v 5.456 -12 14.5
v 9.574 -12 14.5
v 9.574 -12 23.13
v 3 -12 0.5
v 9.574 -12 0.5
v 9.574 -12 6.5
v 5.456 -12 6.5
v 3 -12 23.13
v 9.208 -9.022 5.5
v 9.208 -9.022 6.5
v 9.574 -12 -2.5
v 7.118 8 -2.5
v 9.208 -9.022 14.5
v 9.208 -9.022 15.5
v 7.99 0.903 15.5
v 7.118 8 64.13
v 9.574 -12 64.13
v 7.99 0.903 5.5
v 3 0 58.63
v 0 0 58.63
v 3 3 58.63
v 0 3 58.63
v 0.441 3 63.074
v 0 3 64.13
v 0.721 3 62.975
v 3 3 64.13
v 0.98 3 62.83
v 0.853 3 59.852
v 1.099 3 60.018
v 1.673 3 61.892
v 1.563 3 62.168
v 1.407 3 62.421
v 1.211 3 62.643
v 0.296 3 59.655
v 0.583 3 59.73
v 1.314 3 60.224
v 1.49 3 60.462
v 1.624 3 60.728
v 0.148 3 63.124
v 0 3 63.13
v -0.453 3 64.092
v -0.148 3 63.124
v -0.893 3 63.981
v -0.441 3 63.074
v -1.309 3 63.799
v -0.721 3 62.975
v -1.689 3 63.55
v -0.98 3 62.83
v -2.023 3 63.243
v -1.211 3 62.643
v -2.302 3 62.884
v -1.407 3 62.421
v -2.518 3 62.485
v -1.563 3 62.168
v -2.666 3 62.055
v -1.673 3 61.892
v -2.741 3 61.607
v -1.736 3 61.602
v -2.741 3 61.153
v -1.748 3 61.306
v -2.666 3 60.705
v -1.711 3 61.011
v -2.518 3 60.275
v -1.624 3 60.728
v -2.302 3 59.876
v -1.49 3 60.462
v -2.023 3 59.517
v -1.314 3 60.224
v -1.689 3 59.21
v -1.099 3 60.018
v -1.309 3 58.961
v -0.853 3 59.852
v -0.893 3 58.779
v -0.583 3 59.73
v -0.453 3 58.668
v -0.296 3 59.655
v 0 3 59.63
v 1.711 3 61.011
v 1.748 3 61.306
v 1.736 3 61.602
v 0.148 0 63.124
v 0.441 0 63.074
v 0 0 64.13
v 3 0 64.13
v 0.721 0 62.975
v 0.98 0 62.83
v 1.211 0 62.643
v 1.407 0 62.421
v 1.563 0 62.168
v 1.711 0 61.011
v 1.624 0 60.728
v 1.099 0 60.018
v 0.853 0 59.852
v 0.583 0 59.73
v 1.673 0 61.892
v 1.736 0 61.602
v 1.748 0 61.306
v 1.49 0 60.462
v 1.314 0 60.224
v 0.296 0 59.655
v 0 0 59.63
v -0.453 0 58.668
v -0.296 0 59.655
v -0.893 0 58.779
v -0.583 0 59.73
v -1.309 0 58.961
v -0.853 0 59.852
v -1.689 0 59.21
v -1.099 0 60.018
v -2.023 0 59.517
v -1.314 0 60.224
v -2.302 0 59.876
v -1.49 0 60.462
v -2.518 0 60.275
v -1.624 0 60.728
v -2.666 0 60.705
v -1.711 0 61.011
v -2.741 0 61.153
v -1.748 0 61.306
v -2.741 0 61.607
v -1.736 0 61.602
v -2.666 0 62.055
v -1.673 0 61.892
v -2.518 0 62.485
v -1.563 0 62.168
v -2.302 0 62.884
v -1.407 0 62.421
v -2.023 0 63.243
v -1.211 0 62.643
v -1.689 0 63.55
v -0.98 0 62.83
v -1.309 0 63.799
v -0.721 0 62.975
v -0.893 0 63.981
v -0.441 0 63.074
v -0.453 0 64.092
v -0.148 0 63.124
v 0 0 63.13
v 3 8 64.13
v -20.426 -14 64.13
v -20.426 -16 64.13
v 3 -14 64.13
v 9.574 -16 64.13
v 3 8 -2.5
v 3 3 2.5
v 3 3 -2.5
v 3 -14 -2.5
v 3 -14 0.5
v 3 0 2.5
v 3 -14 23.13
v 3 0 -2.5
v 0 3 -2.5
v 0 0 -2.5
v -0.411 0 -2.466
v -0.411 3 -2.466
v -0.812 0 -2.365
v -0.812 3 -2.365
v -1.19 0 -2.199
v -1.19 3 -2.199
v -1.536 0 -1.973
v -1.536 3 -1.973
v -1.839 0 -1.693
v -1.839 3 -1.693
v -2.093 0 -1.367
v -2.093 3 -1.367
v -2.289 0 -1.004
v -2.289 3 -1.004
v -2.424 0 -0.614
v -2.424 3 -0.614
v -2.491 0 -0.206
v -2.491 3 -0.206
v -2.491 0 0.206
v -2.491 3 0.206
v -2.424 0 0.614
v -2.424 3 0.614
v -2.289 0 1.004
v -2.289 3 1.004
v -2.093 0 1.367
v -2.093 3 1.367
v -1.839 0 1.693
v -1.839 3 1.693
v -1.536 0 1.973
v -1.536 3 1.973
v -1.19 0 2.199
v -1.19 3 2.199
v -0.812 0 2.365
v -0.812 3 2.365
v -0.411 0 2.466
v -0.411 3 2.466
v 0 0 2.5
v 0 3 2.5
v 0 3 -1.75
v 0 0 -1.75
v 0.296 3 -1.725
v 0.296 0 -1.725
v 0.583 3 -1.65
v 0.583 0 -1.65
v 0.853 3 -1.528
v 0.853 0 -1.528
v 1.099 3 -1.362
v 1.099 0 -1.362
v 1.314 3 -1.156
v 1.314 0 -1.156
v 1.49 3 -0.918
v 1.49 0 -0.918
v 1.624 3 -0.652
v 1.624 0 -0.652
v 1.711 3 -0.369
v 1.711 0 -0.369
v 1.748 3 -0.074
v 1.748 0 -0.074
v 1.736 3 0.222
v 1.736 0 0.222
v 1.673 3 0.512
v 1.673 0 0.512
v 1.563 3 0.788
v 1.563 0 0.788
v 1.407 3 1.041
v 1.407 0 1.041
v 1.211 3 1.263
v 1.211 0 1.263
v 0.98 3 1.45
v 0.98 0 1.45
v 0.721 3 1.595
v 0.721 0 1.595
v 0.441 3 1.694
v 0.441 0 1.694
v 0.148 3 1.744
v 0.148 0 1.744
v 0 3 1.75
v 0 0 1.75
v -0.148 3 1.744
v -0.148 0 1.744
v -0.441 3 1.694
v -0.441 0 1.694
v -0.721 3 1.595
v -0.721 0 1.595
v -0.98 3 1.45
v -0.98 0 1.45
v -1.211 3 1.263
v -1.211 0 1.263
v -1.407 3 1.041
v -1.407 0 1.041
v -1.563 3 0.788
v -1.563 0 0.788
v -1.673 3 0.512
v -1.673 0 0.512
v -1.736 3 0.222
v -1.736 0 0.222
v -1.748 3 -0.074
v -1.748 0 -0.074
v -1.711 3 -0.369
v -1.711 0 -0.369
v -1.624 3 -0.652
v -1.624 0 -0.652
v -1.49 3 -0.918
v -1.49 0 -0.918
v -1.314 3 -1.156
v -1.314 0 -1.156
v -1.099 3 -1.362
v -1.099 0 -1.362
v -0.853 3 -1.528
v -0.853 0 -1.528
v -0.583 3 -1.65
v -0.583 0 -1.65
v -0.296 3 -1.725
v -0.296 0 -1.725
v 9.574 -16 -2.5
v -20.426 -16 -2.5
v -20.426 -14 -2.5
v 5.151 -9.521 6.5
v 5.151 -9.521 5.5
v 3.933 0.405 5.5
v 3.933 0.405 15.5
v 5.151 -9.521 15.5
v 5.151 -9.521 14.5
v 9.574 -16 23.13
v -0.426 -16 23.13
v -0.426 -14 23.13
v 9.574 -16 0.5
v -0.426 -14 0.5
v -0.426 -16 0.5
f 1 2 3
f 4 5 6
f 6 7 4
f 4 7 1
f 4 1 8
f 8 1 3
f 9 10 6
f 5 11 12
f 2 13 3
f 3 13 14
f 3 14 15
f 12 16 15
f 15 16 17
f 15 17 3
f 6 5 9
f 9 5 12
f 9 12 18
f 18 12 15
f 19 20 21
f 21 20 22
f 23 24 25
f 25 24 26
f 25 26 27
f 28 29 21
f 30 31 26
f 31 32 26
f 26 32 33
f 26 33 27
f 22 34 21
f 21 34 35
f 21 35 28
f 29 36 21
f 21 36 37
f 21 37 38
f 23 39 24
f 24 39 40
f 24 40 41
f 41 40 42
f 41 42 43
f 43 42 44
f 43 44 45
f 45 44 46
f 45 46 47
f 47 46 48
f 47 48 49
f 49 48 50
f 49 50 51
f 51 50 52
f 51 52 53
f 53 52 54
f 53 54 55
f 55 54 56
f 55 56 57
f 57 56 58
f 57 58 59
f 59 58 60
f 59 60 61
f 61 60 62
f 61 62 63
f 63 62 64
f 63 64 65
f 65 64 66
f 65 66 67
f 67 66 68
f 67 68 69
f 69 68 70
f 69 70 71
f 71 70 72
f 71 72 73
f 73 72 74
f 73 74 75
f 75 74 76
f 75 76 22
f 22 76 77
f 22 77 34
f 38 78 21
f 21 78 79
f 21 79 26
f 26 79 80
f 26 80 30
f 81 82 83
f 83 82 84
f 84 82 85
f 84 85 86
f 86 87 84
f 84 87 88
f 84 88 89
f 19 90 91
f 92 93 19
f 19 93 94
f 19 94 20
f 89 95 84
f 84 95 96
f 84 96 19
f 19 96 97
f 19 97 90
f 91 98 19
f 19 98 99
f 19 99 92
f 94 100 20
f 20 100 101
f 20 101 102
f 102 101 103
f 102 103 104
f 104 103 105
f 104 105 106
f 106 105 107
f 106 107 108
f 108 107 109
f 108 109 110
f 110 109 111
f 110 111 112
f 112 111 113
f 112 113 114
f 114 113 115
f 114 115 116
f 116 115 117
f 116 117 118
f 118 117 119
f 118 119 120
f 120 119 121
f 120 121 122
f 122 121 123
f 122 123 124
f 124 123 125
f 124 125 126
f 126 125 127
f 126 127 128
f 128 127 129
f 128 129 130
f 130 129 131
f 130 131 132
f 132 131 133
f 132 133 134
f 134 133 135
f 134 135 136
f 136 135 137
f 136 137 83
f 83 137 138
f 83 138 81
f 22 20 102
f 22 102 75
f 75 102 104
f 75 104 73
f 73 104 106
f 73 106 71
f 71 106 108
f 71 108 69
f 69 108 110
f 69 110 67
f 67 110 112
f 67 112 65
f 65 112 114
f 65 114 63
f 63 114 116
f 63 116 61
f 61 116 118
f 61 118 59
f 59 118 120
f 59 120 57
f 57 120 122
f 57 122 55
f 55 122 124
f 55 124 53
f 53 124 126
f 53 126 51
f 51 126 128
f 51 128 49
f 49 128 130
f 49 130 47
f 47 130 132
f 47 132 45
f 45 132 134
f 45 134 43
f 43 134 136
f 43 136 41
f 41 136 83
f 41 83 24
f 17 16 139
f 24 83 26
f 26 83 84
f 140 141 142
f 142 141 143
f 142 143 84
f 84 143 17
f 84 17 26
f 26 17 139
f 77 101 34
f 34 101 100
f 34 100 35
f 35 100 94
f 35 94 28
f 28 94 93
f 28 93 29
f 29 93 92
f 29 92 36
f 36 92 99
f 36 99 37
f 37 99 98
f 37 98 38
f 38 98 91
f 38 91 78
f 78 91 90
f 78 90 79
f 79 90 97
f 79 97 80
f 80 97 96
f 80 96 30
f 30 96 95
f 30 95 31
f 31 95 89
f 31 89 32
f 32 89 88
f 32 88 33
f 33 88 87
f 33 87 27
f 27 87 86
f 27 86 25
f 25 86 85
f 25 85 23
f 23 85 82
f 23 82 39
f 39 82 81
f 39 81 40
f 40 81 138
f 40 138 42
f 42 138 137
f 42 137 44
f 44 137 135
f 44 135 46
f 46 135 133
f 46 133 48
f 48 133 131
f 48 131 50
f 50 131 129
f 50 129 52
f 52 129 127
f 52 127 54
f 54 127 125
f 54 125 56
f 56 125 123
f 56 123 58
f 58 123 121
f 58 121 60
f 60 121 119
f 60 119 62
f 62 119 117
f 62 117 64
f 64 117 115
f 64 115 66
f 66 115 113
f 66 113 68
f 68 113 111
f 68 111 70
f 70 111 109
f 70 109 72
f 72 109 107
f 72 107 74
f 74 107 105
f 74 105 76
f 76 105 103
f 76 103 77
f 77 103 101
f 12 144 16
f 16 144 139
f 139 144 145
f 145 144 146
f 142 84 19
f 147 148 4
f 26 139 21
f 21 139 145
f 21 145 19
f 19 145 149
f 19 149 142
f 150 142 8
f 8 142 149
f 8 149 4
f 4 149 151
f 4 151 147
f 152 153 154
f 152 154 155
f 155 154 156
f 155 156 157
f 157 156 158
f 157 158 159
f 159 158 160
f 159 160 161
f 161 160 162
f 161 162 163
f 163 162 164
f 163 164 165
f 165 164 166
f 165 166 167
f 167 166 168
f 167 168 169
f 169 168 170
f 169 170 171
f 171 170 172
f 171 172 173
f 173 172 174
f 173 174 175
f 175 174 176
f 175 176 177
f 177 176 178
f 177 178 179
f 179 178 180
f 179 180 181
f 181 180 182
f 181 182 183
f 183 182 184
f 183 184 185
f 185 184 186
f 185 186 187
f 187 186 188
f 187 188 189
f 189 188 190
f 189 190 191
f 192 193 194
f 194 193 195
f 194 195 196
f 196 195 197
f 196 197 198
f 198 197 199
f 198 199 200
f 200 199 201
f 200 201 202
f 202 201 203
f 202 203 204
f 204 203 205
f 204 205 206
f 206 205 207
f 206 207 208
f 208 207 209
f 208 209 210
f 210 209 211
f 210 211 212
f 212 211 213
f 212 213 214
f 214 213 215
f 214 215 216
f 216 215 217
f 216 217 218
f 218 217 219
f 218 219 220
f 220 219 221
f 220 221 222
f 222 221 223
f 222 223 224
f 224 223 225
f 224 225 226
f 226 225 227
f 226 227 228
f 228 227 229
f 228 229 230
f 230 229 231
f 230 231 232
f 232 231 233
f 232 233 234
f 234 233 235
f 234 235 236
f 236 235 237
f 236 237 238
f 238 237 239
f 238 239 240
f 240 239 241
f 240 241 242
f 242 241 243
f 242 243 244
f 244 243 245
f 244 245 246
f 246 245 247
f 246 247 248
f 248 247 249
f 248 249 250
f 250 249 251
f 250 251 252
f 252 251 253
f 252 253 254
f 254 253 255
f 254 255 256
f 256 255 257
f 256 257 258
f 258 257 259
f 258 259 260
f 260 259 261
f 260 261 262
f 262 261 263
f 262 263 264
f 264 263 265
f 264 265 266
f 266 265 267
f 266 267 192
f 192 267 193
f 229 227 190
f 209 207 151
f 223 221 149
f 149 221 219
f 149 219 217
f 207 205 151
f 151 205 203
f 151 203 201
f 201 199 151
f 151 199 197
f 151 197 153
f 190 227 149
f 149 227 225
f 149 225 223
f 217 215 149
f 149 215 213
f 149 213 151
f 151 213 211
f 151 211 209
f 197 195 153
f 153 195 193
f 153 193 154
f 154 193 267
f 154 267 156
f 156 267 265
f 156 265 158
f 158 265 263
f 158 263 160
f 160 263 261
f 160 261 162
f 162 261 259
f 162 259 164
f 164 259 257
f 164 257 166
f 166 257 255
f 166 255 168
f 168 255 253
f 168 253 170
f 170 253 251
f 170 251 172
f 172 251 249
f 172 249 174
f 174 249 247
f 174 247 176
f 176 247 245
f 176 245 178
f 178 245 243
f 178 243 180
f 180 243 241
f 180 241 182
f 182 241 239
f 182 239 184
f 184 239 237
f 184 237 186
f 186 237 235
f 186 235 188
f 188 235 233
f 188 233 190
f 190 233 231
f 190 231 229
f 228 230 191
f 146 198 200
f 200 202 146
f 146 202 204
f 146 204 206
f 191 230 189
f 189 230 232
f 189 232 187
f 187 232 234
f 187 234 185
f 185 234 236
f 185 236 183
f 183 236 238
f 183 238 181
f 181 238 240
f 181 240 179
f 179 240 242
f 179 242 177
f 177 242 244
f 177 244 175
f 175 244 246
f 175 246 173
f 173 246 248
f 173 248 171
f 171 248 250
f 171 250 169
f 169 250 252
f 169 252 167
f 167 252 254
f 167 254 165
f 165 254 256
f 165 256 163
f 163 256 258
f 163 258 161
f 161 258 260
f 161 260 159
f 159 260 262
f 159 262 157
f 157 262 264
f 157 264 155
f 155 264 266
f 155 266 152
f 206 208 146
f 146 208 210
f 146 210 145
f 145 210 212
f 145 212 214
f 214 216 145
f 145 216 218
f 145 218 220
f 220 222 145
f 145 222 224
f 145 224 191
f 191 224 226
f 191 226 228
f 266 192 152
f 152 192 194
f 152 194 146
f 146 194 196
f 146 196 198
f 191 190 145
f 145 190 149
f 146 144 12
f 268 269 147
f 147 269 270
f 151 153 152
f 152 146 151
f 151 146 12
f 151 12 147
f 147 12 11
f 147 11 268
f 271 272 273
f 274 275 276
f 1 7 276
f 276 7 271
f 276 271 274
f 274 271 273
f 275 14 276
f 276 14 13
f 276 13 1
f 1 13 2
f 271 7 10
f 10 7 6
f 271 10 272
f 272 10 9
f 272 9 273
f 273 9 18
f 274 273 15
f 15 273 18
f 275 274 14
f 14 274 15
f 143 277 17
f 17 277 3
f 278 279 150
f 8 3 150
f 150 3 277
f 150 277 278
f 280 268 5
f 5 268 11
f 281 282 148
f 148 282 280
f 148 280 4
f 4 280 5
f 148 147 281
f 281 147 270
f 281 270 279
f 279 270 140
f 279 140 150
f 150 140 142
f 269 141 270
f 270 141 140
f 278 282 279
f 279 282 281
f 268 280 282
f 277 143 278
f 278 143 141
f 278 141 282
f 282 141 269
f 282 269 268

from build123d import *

# Parameters (mm, degrees)
EXTRUDE_1_DEPTH     = 3
EXTRUDE_2_DEPTH     = 66.63
CUT_EXTRUDE_1_DEPTH = 69.53372087
SKETCH_4_W          = 8
SKETCH_4_H          = 3
CUT_EXTRUDE_2_DEPTH = 10
SKETCH_5_W          = 6.574056315
SKETCH_5_H          = 41
SKETCH_5_H_2        = 3
EXTRUDE_3_DEPTH     = 2
SKETCH_6_W          = 20
SKETCH_6_H          = 22.63
SKETCH_6_W_2        = 30
SKETCH_6_H_2        = 41
SKETCH_6_H_3        = 3
EXTRUDE_4_DEPTH     = 2


with BuildPart() as part:
    # 草图1 → 凸台-拉伸1 (new body)
    with BuildSketch(Plane(origin=(0, 0, 0), x_dir=(1, 0, 0), z_dir=(0, 1, 0))):
        with BuildLine():
            ThreePointArc((2.75, -61.38), (1.944543648, -59.435456352), (0, -58.63))
            Line((0, -58.63), (0, -59.63))
            ThreePointArc((0, -59.63), (1.237436867, -60.142563133), (1.75, -61.38))
            ThreePointArc((1.75, -61.38), (1.237436867, -62.617436867), (0, -63.13))
            Line((0, -63.13), (0, -64.13))
            ThreePointArc((0, -64.13), (1.944543648, -63.324543648), (2.75, -61.38))
        make_face()
        with BuildLine():
            Line((0, -59.63), (0, -58.63))
            ThreePointArc((0, -58.63), (-2.75, -61.38), (0, -64.13))
            Line((0, -64.13), (0, -63.13))
            ThreePointArc((0, -63.13), (-1.75, -61.38), (0, -59.63))
        make_face()
        with BuildLine():
            Line((5, -58.63), (0, -58.63))
            ThreePointArc((0, -58.63), (1.944543648, -59.435456352), (2.75, -61.38))
            ThreePointArc((2.75, -61.38), (1.944543648, -63.324543648), (0, -64.13))
            Line((0, -64.13), (5, -64.13))
            Line((5, -64.13), (5, -58.63))
        make_face()
        Polygon((5, -2.5), (5, -58.63), (5, -64.13), (8, -64.13), (8, 2.5), (5, 2.5), align=None)
        with BuildLine():
            ThreePointArc((0, 2.5), (-2.5, 0), (0, -2.5))
            Line((0, -2.5), (0, -1.75))
            ThreePointArc((0, -1.75), (-1.75, 0), (0, 1.75))
            Line((0, 1.75), (0, 2.5))
        make_face()
        with BuildLine():
            Line((0, -1.75), (0, -2.5))
            ThreePointArc((0, -2.5), (1.767766953, -1.767766953), (2.5, 0))
            ThreePointArc((2.5, 0), (1.767766953, 1.767766953), (0, 2.5))
            Line((0, 2.5), (0, 1.75))
            ThreePointArc((0, 1.75), (1.237436867, 1.237436867), (1.75, 0))
            ThreePointArc((1.75, 0), (1.237436867, -1.237436867), (0, -1.75))
        make_face()
        with BuildLine():
            Line((0, -2.5), (5, -2.5))
            Line((5, -2.5), (5, 2.5))
            Line((5, 2.5), (0, 2.5))
            ThreePointArc((0, 2.5), (1.767766953, 1.767766953), (2.5, 0))
            ThreePointArc((2.5, 0), (1.767766953, -1.767766953), (0, -2.5))
        make_face()
    extrude(amount=EXTRUDE_1_DEPTH)

    # 草图2 → 凸台-拉伸2 (add, through all)
    with BuildSketch(Plane.XY.offset(64.13)):
        Polygon((3, 3), (8, 3), (7.118365096, 8), (3, 8), align=None)
        Polygon((3, -12), (3, 3), (8, 3), (10.644904711, -12), align=None)
    extrude(amount=-EXTRUDE_2_DEPTH)

    # 草图3 → 切除-拉伸1 (cut, through all)
    with BuildSketch(Plane.XY.offset(64.13)):
        Polygon((10.468020954, -13.888439464), (9.574056315, -12), (7.118365096, 8), (7.997986879, 8.163017845), (13.179200704, -12.892022974), align=None)
    extrude(amount=-CUT_EXTRUDE_1_DEPTH, mode=Mode.SUBTRACT)

    # 草图4 → 切除-拉伸2 (cut)
    with BuildSketch(Plane(origin=(3.923131172, 0.481699938, 0), x_dir=(0, 0, -1), z_dir=(0.9925461516413224, 0.12186934340514417, 0))):
        Polygon((-5.5, -10.077337776), (-5.5, -0.077337776), (-15.5, -0.077337776), (-15.5, -10.077337776), (-14.5, -10.077337776), (-14.5, -7.077337776), (-6.5, -7.077337776), (-6.5, -10.077337776), align=None)
        with Locations((-10.5, -8.577337776)):
            Rectangle(SKETCH_4_W, SKETCH_4_H)
        with Locations((-10.5, -11.577337776)):
            Rectangle(SKETCH_4_W, SKETCH_4_H)
    extrude(amount=CUT_EXTRUDE_2_DEPTH, mode=Mode.SUBTRACT)

    # 草图5 → 凸台-拉伸3 (add)
    with BuildSketch(Plane(origin=(0, -12, 0), x_dir=(-1, 0, 0), z_dir=(0, -1, 0))):
        with Locations((-6.287028157, -43.63)):
            Rectangle(SKETCH_5_W, SKETCH_5_H)
        with Locations((-6.287028157, 1)):
            Rectangle(SKETCH_5_W, SKETCH_5_H_2)
    extrude(amount=EXTRUDE_3_DEPTH)

    # 草图6 → 凸台-拉伸4 (add)
    with BuildSketch(Plane(origin=(0, -14, 0), x_dir=(-1, 0, 0), z_dir=(0, -1, 0))):
        with Locations((10.425943685, -11.815)):
            Rectangle(SKETCH_6_W, SKETCH_6_H)
        with Locations((5.425943685, -43.63)):
            Rectangle(SKETCH_6_W_2, SKETCH_6_H_2)
        with Locations((5.425943685, 1)):
            Rectangle(SKETCH_6_W_2, SKETCH_6_H_3)
    extrude(amount=EXTRUDE_4_DEPTH)


solid = part.part
